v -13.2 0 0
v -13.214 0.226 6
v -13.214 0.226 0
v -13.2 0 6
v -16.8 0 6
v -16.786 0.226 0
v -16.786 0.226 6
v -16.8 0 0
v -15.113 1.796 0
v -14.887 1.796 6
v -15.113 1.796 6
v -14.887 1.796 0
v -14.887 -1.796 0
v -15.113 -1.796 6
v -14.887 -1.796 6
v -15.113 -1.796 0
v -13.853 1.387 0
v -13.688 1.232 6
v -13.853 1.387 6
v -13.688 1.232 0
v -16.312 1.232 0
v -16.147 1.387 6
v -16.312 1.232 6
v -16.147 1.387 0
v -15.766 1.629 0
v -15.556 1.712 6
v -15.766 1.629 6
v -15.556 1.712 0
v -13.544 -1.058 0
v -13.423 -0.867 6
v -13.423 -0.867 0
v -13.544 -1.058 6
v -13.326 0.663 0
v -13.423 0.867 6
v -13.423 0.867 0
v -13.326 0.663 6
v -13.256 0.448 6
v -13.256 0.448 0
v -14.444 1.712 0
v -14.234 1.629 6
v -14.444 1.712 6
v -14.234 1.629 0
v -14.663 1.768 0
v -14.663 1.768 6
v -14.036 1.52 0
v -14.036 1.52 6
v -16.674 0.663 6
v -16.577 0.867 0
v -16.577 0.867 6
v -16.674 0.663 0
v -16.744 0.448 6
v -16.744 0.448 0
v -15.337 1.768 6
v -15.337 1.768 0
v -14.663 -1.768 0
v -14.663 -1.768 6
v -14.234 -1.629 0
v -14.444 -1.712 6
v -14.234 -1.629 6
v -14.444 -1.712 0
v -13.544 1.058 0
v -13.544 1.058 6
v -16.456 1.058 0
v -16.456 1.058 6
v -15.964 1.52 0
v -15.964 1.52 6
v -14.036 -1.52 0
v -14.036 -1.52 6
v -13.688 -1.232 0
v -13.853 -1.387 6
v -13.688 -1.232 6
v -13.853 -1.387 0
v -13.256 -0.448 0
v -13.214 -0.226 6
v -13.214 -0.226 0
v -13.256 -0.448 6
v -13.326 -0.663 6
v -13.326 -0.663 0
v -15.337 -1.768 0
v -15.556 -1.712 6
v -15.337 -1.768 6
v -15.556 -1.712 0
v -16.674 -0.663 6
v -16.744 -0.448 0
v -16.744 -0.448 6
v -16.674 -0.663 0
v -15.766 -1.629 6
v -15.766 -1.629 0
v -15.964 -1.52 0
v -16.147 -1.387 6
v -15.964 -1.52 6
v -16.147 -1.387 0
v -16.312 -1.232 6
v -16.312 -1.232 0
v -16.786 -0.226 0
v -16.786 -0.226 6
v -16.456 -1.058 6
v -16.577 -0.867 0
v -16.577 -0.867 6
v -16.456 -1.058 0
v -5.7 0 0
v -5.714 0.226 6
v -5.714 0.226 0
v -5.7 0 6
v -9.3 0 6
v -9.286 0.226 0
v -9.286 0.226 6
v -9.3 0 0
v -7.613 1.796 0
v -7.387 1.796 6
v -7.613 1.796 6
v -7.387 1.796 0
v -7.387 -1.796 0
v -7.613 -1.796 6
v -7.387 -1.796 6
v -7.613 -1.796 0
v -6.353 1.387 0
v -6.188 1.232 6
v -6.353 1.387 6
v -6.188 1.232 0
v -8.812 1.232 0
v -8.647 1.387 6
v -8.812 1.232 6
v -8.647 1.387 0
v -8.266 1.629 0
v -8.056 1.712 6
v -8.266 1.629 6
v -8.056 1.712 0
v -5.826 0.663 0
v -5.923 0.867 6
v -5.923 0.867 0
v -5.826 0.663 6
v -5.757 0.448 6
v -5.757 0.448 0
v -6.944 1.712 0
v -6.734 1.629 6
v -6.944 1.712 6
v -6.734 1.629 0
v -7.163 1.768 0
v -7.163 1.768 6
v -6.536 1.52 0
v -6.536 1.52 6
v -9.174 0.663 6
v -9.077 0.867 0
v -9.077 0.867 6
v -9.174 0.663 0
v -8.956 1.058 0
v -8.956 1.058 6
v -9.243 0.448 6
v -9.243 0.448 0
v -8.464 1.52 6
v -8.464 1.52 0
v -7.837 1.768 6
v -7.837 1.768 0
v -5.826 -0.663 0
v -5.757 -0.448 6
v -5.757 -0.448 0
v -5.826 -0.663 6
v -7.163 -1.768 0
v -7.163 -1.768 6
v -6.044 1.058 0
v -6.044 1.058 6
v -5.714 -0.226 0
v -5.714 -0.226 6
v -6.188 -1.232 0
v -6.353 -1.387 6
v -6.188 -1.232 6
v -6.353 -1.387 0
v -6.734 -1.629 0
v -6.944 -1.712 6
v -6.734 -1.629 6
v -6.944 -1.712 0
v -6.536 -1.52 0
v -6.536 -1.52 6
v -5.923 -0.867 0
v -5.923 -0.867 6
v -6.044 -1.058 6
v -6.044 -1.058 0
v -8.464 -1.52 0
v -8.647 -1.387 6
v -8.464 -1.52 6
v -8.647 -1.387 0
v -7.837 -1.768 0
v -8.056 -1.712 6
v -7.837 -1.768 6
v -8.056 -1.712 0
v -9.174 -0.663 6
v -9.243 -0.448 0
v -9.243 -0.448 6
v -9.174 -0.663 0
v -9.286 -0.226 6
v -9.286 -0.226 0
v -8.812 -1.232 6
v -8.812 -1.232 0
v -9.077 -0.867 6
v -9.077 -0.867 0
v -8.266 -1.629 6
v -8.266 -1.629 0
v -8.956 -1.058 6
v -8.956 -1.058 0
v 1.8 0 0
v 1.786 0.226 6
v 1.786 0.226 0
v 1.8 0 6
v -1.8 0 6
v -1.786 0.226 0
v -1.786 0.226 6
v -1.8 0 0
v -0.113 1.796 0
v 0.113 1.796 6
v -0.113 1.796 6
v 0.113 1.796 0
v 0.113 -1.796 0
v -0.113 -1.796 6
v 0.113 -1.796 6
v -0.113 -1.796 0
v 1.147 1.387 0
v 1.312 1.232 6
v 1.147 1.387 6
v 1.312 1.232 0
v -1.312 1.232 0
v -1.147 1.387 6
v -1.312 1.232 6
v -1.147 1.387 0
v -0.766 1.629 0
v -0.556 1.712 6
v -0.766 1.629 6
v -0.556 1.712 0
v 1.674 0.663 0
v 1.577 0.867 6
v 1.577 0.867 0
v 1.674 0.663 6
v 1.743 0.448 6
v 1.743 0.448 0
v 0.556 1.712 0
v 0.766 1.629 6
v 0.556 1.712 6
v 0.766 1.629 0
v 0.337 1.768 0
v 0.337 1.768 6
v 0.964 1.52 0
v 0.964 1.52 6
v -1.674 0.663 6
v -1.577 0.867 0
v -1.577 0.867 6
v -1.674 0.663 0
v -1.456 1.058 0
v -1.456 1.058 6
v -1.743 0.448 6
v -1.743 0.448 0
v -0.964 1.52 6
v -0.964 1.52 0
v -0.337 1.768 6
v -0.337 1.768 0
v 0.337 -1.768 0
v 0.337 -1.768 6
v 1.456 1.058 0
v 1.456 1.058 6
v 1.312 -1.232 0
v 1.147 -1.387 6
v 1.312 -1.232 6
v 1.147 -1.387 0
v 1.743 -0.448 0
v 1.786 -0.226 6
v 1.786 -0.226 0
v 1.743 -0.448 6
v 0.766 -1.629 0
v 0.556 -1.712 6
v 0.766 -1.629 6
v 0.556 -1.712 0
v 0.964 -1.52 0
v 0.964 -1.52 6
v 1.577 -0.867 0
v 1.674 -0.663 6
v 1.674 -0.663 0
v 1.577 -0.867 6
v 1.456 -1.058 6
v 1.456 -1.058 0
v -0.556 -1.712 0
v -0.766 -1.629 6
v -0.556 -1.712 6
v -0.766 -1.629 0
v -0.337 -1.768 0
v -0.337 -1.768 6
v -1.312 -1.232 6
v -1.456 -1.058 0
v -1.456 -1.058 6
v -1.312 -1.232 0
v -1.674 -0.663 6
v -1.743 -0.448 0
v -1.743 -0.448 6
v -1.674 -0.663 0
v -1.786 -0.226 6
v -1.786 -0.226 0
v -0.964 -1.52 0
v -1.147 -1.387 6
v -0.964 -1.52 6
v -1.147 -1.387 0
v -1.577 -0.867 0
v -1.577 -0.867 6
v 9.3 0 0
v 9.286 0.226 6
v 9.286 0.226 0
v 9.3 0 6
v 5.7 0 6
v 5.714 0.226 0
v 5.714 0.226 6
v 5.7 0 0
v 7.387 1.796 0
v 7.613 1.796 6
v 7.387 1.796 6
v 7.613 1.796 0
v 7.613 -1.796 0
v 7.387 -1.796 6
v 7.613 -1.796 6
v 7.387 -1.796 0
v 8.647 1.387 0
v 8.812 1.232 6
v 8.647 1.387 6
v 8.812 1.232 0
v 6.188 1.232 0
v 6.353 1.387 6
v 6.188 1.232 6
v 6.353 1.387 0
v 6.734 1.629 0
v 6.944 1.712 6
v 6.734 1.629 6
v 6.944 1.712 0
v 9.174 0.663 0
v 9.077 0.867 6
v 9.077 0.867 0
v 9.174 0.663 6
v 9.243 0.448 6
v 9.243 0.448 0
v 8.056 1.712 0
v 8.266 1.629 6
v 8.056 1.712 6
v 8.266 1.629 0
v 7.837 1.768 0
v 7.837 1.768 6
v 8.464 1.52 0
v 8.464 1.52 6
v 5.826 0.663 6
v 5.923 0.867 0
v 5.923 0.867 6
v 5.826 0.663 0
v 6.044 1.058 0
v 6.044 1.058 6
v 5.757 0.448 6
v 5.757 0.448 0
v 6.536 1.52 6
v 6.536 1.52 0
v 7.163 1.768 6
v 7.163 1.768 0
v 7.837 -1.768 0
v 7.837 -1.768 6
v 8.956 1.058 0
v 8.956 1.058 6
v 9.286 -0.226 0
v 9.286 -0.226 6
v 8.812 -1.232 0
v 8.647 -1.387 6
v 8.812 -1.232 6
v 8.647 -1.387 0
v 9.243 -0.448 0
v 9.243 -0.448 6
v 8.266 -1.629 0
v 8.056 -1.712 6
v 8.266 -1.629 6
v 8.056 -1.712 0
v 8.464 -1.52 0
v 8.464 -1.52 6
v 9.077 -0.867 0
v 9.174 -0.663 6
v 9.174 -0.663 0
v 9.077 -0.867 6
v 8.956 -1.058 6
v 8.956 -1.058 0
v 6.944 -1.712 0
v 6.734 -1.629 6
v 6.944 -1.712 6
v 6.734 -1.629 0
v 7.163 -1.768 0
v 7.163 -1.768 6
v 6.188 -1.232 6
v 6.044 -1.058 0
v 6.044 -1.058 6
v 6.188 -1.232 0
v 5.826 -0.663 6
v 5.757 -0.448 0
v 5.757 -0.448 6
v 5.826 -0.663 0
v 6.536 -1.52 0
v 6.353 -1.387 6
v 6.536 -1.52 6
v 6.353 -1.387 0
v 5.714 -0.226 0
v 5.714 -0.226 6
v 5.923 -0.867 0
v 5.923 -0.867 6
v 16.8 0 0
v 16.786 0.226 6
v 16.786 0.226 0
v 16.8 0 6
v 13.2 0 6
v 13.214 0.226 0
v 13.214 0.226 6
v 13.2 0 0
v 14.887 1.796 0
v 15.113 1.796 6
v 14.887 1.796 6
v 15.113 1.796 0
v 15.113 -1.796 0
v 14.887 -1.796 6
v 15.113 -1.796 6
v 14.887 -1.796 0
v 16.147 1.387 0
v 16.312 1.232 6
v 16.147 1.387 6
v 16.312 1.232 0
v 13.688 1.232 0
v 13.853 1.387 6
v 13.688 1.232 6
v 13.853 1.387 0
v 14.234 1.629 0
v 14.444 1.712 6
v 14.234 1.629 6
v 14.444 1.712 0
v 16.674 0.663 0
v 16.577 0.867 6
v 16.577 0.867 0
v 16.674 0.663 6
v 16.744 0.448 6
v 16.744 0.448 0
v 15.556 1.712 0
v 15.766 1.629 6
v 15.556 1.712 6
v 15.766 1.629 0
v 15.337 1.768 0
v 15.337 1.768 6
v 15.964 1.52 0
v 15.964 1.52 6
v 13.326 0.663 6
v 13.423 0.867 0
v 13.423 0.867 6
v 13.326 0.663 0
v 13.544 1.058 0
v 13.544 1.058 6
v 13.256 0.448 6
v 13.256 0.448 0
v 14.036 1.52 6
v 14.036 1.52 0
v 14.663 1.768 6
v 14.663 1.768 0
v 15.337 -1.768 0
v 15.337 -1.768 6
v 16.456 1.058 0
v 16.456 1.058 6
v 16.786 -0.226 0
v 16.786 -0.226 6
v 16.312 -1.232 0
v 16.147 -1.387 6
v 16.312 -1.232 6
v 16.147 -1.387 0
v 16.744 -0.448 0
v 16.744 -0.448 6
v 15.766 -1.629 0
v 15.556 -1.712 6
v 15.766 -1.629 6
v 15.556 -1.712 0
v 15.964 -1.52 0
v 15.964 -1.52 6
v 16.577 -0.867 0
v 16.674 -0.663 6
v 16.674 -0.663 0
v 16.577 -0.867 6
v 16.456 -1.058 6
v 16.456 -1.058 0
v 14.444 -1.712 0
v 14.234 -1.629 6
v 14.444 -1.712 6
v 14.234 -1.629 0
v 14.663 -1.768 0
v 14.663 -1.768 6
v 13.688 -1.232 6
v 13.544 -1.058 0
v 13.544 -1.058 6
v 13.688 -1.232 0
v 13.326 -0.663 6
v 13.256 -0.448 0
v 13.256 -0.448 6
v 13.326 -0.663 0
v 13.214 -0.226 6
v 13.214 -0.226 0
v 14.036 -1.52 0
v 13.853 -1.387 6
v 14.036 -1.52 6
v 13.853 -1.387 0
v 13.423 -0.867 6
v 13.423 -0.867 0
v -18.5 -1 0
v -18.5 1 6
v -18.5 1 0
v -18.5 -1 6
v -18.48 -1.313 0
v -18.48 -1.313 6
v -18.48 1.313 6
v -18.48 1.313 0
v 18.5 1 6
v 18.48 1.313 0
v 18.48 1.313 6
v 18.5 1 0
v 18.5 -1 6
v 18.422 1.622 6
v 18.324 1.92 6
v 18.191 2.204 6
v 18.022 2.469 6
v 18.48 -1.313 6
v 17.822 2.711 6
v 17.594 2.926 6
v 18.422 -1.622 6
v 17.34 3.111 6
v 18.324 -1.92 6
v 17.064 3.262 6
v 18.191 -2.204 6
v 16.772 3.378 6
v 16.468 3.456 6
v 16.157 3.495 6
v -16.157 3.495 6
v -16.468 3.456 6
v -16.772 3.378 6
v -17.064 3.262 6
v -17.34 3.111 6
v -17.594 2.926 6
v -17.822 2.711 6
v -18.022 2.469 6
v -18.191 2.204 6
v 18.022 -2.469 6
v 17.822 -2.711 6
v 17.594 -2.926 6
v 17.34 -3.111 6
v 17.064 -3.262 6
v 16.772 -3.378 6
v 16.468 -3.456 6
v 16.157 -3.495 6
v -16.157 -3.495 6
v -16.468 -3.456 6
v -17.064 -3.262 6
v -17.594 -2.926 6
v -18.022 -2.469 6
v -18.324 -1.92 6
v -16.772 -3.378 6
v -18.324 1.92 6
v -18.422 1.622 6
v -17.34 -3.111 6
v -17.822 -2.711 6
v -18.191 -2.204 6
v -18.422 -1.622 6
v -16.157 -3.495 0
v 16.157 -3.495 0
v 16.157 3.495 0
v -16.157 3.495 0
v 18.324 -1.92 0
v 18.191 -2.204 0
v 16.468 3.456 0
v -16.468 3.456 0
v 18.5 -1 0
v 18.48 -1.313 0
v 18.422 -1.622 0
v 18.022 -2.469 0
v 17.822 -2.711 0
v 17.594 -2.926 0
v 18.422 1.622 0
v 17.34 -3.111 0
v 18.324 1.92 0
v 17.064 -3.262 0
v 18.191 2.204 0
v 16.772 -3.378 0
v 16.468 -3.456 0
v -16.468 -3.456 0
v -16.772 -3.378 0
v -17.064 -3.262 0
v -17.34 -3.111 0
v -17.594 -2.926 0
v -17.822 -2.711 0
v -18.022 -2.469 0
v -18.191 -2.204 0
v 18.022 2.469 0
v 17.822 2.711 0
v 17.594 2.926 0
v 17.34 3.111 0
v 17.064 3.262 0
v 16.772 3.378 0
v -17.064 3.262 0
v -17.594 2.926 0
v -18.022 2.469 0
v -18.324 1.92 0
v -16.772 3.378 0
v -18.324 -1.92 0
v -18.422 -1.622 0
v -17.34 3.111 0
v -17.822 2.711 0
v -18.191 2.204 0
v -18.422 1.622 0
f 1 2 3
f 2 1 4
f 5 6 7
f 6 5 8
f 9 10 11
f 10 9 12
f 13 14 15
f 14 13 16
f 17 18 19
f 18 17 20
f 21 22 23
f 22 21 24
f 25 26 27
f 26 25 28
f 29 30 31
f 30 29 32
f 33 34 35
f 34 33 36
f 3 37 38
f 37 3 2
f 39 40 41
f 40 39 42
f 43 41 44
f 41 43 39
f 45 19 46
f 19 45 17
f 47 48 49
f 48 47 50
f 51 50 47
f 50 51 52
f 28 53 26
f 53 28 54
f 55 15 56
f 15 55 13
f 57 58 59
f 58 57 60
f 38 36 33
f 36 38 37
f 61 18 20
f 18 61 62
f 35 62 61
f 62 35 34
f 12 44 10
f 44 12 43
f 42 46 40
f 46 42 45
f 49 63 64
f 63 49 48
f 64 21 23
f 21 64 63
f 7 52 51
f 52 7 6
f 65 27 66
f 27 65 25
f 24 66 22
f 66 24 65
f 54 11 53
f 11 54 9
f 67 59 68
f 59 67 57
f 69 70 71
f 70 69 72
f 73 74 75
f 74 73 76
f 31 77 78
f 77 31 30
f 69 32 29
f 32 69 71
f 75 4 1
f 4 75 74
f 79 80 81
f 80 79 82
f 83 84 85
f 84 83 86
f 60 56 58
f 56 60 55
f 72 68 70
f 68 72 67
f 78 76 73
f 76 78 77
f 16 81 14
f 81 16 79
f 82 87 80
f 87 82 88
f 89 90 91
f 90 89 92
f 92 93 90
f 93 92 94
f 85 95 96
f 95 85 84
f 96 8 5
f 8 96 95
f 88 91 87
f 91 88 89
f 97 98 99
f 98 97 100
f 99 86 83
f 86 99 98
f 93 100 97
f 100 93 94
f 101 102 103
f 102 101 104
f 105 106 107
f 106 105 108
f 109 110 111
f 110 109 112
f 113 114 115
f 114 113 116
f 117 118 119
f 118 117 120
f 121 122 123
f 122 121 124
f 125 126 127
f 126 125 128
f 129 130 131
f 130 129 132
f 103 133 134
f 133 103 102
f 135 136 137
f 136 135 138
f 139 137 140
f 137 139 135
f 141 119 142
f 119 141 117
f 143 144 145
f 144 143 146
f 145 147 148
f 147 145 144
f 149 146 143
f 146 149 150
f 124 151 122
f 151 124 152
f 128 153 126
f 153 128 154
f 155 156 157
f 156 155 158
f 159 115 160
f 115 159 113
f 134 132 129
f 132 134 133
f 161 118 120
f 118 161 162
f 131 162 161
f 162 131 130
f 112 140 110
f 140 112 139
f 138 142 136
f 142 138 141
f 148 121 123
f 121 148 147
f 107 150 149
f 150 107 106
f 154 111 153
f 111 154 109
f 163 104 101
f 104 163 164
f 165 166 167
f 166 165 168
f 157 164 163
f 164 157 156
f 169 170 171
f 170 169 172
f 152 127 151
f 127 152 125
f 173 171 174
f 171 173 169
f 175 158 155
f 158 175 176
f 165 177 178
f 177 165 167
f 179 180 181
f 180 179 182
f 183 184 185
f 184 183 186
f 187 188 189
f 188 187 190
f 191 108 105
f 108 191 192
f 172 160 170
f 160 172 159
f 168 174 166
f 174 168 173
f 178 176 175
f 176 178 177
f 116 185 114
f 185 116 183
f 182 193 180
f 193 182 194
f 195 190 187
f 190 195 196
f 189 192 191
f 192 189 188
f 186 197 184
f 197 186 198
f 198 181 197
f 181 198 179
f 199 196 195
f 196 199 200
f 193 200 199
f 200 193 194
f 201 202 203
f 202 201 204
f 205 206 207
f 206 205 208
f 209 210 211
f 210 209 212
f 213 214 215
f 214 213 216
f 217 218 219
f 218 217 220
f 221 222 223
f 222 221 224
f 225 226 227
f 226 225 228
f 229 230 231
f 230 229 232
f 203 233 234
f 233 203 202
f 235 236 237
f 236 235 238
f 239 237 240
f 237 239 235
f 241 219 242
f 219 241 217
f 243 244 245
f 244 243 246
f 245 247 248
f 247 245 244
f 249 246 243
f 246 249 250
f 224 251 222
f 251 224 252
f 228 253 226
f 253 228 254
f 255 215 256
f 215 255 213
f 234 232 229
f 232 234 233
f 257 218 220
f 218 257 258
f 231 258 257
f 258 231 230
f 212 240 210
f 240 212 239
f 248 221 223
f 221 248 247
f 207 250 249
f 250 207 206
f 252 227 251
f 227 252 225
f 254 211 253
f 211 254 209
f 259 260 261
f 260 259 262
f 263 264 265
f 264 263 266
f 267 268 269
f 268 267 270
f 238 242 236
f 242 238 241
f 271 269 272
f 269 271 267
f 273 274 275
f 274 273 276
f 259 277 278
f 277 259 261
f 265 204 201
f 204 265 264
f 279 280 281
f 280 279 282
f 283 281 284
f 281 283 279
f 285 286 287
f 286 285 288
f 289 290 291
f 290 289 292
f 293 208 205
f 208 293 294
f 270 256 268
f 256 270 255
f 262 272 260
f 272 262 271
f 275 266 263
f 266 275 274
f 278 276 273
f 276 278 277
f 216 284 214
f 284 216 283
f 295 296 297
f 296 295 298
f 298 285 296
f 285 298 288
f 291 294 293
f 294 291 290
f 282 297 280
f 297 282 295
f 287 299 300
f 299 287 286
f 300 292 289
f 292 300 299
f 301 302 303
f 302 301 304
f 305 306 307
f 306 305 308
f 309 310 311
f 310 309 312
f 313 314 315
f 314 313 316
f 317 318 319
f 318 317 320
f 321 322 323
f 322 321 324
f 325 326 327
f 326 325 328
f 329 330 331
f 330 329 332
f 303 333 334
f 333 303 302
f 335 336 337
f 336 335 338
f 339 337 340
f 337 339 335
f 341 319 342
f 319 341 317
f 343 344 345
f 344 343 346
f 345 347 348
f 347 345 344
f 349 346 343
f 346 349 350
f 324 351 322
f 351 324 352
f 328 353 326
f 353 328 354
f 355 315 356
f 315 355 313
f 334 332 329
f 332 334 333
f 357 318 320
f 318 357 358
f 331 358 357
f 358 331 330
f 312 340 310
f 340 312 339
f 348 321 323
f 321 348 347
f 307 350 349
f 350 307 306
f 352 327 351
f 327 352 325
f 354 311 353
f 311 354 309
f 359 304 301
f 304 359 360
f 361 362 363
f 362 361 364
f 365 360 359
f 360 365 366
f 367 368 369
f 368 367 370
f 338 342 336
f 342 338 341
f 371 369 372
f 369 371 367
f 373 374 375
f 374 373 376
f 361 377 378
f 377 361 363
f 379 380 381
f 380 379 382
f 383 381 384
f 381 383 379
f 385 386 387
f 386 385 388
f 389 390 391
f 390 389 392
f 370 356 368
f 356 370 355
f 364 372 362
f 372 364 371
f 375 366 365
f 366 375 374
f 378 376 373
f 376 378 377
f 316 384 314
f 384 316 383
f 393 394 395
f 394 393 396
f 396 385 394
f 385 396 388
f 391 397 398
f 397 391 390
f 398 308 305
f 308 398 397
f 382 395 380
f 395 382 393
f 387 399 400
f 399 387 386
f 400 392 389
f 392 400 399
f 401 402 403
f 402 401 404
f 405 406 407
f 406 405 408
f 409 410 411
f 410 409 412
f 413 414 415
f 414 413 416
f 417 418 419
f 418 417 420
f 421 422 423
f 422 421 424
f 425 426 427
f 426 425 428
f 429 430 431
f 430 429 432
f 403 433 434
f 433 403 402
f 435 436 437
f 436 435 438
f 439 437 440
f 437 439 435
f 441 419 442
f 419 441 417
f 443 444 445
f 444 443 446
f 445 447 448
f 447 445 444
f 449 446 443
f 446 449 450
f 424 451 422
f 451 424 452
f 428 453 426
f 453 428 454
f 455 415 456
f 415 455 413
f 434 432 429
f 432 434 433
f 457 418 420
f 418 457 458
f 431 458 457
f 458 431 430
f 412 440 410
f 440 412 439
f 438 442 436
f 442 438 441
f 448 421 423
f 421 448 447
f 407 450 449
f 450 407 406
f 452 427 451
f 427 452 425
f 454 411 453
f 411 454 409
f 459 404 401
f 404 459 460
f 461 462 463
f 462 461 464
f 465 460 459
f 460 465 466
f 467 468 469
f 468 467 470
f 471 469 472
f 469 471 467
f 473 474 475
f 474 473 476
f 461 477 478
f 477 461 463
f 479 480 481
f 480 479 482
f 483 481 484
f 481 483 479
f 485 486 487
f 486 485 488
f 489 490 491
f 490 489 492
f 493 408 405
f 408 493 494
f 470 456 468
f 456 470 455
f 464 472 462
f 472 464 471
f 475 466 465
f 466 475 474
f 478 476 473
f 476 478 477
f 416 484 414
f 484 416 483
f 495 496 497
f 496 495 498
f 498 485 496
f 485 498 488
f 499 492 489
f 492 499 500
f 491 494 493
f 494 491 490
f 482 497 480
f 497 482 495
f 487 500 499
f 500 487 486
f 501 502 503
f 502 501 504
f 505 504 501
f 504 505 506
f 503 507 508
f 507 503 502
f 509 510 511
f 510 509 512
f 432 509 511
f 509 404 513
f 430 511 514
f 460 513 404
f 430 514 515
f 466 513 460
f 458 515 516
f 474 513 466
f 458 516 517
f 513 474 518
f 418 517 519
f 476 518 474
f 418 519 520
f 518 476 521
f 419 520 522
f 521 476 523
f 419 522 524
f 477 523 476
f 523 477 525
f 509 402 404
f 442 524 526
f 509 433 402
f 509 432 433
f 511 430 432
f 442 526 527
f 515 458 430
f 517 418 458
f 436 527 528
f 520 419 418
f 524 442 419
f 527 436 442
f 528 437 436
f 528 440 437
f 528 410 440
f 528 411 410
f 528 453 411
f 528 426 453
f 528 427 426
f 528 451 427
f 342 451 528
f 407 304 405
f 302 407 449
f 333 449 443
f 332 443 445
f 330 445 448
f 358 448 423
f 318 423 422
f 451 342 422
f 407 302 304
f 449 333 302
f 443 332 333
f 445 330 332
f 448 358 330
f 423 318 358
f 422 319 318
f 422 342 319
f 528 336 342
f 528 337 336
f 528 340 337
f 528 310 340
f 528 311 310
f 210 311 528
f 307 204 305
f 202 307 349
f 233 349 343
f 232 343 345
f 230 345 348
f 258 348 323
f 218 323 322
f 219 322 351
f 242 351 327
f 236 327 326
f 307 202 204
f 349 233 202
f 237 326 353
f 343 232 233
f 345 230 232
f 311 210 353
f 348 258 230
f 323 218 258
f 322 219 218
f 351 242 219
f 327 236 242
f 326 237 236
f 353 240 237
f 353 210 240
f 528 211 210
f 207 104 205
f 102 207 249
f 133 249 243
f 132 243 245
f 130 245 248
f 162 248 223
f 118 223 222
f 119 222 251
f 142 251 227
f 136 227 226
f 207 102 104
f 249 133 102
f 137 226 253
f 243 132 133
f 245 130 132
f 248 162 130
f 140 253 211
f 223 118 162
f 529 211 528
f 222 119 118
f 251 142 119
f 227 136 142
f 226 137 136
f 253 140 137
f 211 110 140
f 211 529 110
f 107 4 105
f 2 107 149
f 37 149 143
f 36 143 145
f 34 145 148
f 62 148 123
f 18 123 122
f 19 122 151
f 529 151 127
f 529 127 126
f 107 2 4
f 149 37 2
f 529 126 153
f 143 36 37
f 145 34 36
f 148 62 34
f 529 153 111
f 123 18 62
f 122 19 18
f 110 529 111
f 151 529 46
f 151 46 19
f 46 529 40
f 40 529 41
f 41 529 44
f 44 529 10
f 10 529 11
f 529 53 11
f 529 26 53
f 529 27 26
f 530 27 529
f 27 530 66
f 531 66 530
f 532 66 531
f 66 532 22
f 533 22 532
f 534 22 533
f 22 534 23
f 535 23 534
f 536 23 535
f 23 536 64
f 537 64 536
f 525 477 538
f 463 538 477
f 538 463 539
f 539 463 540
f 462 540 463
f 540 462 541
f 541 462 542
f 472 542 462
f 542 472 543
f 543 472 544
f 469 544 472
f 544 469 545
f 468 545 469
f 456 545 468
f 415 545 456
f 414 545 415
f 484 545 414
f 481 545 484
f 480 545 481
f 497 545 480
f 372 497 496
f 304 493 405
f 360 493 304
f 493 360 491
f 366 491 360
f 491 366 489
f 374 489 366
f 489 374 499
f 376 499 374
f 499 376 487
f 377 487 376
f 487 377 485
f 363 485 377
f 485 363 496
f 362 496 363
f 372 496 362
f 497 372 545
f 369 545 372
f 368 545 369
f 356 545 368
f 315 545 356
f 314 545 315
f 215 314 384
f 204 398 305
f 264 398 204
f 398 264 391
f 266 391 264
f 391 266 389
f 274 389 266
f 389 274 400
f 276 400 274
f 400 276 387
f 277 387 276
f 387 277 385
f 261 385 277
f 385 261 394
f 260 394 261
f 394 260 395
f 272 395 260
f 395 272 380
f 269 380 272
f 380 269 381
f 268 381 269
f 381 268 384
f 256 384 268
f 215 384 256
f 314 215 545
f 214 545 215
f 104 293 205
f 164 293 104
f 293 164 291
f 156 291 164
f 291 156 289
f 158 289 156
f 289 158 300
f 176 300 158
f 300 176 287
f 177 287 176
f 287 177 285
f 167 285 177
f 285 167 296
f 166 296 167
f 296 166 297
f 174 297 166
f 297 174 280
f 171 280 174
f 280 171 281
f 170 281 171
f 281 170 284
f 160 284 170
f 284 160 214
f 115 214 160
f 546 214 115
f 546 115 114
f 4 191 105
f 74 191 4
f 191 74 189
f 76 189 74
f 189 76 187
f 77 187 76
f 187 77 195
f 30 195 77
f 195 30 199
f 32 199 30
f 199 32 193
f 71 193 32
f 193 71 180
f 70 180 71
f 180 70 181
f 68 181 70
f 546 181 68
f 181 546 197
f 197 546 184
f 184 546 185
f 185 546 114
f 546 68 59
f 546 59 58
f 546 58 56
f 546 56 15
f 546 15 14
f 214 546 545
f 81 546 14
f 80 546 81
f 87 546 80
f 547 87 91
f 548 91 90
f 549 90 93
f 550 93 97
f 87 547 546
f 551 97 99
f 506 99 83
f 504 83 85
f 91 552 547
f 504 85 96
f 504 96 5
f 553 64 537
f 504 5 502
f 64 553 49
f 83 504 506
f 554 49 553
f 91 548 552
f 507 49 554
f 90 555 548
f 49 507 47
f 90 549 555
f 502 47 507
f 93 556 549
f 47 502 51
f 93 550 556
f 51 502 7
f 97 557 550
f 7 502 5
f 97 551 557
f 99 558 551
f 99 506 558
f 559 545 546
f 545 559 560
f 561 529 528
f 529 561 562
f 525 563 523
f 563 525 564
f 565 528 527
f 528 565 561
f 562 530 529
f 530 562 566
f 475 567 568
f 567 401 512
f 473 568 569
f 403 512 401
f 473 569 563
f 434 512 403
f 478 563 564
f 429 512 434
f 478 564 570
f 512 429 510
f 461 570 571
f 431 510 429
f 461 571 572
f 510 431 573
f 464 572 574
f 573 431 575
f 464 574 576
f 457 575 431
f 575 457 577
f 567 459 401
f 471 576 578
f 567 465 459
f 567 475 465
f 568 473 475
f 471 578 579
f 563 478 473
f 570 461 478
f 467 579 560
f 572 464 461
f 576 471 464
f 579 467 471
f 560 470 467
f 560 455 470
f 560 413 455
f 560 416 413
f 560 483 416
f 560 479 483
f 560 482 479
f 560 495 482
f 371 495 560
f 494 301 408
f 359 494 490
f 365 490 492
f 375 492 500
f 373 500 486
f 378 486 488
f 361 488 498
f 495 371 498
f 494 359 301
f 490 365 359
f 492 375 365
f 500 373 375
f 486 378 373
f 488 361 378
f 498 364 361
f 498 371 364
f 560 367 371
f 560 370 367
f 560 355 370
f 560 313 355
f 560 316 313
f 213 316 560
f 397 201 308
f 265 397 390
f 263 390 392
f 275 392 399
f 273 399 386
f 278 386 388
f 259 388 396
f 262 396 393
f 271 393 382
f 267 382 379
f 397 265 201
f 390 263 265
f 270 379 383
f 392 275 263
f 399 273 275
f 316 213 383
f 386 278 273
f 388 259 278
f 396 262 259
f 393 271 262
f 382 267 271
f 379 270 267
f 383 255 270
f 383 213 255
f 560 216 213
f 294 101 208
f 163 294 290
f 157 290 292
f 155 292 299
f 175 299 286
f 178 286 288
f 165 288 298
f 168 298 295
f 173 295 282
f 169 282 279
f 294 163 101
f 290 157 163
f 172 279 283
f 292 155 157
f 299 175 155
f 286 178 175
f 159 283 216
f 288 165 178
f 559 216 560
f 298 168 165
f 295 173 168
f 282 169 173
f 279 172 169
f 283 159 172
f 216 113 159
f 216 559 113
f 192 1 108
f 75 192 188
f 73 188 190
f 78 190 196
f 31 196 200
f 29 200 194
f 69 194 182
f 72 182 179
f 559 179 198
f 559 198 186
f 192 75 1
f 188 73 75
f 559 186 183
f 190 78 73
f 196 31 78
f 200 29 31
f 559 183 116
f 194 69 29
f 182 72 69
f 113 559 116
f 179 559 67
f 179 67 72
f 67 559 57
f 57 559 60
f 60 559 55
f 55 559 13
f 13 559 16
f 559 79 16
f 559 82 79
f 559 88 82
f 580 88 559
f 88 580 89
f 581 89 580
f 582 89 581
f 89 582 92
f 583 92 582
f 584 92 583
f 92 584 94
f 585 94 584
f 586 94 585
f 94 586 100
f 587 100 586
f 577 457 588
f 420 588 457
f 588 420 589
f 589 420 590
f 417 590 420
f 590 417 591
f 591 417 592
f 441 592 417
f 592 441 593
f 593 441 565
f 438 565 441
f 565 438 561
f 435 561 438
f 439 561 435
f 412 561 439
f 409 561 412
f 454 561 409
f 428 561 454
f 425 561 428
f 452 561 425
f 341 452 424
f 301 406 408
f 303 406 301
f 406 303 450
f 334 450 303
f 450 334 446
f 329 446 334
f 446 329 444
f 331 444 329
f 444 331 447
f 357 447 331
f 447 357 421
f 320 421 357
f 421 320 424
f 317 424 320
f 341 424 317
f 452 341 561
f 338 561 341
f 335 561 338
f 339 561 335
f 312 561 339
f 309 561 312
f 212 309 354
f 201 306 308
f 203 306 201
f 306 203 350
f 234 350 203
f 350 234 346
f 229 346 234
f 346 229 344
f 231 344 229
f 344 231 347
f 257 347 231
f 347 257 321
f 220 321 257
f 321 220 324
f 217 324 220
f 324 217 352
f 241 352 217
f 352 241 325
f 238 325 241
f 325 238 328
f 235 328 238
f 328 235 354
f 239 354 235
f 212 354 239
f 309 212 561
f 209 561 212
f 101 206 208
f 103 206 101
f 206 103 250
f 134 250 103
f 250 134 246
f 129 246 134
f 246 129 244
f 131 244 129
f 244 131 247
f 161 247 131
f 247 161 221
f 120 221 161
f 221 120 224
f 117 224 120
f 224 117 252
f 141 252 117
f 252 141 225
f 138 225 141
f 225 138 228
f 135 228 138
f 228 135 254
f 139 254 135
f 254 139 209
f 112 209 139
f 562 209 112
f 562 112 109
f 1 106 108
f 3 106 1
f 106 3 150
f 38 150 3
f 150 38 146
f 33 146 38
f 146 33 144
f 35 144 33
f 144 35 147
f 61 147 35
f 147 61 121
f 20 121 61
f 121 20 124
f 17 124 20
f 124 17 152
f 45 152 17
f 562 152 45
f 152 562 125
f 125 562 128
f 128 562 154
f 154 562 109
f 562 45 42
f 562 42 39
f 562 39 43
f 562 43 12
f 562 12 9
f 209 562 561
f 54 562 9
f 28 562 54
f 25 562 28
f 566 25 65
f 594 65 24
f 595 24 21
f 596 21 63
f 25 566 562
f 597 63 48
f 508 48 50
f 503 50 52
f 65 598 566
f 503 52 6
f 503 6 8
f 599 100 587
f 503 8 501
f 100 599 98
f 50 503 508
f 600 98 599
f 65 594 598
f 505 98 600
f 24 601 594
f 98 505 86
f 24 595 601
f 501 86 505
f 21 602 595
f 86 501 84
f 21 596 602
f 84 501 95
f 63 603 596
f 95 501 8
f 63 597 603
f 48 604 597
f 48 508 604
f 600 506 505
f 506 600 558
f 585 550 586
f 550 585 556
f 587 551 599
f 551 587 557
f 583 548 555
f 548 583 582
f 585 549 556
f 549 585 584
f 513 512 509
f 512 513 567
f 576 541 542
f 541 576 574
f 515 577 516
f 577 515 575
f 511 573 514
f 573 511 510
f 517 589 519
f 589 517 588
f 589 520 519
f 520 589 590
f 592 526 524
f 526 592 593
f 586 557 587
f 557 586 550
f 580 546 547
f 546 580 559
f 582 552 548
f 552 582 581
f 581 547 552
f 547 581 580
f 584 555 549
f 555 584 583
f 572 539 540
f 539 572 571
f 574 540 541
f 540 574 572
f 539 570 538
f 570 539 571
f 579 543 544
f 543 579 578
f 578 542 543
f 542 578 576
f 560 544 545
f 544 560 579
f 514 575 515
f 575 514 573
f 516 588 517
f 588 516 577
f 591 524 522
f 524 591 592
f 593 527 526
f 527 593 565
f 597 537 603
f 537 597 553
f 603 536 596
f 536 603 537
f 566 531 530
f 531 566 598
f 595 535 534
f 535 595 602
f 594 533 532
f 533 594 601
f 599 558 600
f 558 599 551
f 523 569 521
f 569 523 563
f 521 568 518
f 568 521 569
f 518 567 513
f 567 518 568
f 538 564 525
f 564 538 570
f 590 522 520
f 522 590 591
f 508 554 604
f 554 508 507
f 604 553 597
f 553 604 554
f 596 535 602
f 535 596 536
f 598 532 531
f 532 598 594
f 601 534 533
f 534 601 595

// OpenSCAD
$fn = 50;


difference() {
	union() {
		translate(v = [0, 0, 0]) {
			rotate(a = [0, 0, 0]) {
				hull() {
					translate(v = [-16.0000000000, 1.0000000000, 0]) {
						rotate(a = [0, 0, 0]) {
							translate(v = [0, 0, 0]) {
								rotate(a = [0, 0, 0]) {
									cylinder(h = 6, r = 2.5000000000);
								}
							}
						}
					}
					translate(v = [16.0000000000, 1.0000000000, 0]) {
						rotate(a = [0, 0, 0]) {
							translate(v = [0, 0, 0]) {
								rotate(a = [0, 0, 0]) {
									cylinder(h = 6, r = 2.5000000000);
								}
							}
						}
					}
					translate(v = [-16.0000000000, -1.0000000000, 0]) {
						rotate(a = [0, 0, 0]) {
							translate(v = [0, 0, 0]) {
								rotate(a = [0, 0, 0]) {
									cylinder(h = 6, r = 2.5000000000);
								}
							}
						}
					}
					translate(v = [16.0000000000, -1.0000000000, 0]) {
						rotate(a = [0, 0, 0]) {
							translate(v = [0, 0, 0]) {
								rotate(a = [0, 0, 0]) {
									cylinder(h = 6, r = 2.5000000000);
								}
							}
						}
					}
				}
			}
		}
	}
	union() {
		translate(v = [-15.0000000000, 0.0000000000, 0]) {
			rotate(a = [0, 0, 0]) {
				translate(v = [0, 0, -50]) {
					rotate(a = [0, 0, 0]) {
						cylinder(h = 100, r = 1.8000000000);
					}
				}
			}
		}
		translate(v = [-7.5000000000, 0.0000000000, 0]) {
			rotate(a = [0, 0, 0]) {
				translate(v = [0, 0, -50]) {
					rotate(a = [0, 0, 0]) {
						cylinder(h = 100, r = 1.8000000000);
					}
				}
			}
		}
		translate(v = [0.0000000000, 0.0000000000, 0]) {
			rotate(a = [0, 0, 0]) {
				translate(v = [0, 0, -50]) {
					rotate(a = [0, 0, 0]) {
						cylinder(h = 100, r = 1.8000000000);
					}
				}
			}
		}
		translate(v = [7.5000000000, 0.0000000000, 0]) {
			rotate(a = [0, 0, 0]) {
				translate(v = [0, 0, -50]) {
					rotate(a = [0, 0, 0]) {
						cylinder(h = 100, r = 1.8000000000);
					}
				}
			}
		}
		translate(v = [15.0000000000, 0.0000000000, 0]) {
			rotate(a = [0, 0, 0]) {
				translate(v = [0, 0, -50]) {
					rotate(a = [0, 0, 0]) {
						cylinder(h = 100, r = 1.8000000000);
					}
				}
			}
		}
	}
}
